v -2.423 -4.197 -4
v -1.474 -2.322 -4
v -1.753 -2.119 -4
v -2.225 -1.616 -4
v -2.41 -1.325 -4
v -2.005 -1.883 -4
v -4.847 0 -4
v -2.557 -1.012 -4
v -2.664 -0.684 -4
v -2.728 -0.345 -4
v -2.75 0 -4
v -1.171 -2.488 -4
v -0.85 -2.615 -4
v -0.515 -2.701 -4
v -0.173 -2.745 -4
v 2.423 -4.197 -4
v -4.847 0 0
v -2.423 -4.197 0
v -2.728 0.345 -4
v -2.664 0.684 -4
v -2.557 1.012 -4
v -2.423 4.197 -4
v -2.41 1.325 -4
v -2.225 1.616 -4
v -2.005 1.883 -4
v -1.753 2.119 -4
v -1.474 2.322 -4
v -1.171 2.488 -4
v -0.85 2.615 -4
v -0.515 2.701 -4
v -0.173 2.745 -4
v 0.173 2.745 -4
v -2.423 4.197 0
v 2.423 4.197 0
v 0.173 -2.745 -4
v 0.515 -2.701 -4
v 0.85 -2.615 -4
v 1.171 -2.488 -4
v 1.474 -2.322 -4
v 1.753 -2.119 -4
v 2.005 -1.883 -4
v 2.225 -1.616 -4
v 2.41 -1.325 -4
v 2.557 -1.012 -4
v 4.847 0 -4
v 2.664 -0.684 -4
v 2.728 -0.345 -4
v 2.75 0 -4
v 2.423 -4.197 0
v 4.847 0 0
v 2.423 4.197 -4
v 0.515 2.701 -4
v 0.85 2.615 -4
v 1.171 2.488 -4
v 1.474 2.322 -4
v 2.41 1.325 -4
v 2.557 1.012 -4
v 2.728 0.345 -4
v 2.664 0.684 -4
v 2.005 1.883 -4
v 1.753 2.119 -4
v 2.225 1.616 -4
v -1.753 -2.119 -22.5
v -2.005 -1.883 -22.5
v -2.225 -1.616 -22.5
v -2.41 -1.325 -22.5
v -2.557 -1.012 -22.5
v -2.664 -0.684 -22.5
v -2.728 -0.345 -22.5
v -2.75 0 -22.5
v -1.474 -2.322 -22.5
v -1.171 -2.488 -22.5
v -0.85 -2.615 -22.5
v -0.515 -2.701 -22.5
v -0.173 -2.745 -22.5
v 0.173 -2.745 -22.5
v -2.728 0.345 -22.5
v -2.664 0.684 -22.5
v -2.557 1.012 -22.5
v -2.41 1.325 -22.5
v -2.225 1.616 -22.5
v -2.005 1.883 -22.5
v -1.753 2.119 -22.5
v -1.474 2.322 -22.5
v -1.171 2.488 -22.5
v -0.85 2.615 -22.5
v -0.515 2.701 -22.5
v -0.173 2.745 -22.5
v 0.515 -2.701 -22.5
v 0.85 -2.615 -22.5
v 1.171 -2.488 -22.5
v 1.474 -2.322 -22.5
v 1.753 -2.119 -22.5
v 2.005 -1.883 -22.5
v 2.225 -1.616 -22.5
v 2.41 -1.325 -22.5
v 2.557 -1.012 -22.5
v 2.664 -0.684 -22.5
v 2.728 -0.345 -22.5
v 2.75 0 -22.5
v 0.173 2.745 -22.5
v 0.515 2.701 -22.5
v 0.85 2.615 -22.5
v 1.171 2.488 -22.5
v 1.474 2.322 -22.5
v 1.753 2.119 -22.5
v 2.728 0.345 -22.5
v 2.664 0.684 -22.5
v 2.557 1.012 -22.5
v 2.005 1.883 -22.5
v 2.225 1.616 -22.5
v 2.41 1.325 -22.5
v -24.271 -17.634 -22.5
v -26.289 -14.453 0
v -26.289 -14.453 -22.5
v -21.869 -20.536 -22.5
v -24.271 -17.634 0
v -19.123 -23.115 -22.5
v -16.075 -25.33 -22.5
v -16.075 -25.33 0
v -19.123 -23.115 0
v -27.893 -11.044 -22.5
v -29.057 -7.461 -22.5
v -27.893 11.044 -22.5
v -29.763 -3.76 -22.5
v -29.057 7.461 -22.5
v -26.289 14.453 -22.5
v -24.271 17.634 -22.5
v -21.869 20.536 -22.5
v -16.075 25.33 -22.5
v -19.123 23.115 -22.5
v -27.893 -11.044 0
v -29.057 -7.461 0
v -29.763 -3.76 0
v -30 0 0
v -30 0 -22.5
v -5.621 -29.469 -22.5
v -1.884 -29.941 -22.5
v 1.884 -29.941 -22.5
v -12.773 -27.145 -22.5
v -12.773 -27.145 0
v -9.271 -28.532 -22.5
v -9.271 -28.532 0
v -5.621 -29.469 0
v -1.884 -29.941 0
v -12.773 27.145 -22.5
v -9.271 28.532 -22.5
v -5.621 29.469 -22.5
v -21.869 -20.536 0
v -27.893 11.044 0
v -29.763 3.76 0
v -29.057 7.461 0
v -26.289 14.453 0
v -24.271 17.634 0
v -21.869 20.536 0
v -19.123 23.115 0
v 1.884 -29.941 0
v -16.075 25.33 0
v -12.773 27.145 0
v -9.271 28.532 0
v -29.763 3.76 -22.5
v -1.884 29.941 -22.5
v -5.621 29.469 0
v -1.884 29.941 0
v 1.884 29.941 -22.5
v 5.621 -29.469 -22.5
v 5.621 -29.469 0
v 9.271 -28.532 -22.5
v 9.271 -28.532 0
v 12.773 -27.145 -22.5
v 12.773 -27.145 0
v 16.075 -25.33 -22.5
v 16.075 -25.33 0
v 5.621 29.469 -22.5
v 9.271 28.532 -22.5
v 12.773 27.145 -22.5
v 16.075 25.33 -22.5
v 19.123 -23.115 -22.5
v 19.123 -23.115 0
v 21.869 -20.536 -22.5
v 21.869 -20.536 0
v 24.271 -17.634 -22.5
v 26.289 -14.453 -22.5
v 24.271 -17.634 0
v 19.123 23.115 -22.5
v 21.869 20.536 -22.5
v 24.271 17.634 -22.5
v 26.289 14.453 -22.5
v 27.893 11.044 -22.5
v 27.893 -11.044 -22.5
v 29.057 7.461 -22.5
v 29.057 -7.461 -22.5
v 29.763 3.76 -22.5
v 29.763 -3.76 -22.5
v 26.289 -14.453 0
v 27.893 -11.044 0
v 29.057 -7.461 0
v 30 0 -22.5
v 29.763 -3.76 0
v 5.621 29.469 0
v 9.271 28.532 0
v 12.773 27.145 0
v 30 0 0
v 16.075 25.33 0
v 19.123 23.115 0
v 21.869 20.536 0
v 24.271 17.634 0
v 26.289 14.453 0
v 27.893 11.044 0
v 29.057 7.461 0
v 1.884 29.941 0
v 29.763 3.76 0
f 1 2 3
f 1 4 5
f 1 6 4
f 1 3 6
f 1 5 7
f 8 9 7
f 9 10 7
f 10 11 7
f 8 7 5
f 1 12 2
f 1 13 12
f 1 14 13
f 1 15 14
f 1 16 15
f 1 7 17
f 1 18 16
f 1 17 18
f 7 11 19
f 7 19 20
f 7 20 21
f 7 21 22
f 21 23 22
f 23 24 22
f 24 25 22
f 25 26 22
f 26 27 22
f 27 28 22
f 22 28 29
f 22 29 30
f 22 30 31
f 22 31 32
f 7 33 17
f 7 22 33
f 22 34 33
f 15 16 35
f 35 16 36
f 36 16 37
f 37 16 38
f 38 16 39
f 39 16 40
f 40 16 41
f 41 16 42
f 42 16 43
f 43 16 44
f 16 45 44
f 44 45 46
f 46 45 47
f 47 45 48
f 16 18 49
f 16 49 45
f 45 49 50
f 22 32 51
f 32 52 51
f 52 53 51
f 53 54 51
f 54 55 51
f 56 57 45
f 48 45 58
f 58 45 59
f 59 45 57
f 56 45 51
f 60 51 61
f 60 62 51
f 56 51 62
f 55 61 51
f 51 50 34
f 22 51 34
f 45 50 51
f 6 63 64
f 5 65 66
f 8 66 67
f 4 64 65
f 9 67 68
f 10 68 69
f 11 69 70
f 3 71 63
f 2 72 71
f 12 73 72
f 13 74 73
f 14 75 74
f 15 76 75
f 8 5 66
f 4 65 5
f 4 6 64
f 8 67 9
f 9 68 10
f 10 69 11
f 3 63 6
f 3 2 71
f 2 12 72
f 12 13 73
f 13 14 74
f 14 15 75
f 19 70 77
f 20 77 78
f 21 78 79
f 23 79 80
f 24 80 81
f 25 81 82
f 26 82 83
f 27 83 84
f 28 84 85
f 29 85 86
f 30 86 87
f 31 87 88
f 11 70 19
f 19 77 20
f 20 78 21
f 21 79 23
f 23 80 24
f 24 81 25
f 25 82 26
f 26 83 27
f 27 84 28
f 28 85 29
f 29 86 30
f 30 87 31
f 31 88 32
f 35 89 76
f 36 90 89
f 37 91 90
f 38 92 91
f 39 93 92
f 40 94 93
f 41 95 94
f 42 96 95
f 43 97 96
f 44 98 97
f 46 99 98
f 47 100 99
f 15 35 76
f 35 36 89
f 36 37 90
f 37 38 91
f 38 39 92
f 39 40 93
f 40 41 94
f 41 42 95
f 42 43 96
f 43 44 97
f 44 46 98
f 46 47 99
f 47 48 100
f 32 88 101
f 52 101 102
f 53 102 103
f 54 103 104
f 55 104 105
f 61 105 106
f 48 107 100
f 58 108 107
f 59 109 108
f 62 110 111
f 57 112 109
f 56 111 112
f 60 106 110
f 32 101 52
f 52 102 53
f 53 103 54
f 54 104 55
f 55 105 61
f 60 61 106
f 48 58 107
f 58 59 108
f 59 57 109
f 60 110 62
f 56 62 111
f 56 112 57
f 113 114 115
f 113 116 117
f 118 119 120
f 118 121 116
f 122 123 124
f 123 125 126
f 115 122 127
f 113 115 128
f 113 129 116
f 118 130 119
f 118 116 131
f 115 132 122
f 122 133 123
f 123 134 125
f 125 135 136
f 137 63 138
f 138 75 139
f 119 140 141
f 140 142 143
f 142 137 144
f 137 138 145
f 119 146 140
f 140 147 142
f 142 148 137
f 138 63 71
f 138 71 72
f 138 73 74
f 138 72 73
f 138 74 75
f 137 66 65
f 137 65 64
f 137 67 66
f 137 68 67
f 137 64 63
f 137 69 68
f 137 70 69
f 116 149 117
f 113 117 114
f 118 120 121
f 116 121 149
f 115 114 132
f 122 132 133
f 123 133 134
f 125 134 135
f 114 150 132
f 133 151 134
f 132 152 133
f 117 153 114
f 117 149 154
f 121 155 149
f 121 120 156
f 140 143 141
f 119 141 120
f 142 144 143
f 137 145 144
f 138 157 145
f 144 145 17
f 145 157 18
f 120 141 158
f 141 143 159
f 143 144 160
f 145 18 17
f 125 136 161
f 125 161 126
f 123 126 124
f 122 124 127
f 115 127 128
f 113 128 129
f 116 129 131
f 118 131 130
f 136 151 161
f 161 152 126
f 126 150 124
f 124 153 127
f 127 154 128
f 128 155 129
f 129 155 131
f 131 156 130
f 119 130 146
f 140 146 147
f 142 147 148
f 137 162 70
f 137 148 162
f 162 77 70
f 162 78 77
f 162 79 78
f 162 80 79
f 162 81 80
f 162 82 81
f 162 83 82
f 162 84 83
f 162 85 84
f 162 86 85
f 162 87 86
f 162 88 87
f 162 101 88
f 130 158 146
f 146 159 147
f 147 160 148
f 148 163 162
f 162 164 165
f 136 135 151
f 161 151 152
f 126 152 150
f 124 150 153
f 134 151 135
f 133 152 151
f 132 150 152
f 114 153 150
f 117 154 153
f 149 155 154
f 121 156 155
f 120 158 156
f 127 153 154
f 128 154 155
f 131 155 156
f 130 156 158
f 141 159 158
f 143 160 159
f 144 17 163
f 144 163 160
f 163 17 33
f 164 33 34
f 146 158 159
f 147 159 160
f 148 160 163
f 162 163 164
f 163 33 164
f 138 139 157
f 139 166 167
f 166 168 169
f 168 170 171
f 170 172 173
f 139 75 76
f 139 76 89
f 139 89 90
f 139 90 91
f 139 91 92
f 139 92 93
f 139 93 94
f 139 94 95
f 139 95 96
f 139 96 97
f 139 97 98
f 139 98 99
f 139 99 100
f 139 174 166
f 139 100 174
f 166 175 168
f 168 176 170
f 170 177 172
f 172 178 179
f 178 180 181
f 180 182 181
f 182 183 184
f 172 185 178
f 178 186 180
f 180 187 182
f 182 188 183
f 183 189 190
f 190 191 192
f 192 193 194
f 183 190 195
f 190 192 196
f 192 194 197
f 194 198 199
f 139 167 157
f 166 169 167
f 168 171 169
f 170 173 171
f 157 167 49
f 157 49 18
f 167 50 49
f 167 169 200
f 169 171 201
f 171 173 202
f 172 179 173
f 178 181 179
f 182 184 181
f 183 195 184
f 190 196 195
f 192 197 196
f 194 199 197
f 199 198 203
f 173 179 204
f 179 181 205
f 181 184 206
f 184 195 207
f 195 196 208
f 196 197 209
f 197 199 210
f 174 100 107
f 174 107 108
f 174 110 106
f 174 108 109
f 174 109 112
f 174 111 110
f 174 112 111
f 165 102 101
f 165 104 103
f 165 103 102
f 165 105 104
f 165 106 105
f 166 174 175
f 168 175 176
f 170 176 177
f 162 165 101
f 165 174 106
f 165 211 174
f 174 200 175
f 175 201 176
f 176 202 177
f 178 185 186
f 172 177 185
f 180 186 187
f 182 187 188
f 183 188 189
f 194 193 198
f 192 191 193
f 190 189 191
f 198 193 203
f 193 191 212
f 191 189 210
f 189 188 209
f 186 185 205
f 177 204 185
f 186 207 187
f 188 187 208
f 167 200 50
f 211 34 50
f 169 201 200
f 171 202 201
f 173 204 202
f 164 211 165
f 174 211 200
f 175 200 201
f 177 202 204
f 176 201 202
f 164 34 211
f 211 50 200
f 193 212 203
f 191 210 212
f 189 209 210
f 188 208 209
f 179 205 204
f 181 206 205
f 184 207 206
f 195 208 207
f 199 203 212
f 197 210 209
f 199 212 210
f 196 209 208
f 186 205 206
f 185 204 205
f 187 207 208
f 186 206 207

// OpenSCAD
$fn = 50;

difference() {
	union() {
		translate(v = [0, 0, -22.5]) {
			cylinder(h = 22.5, r = 30.0);
		}
	}
	union() {
		translate(v = [0, 0, 0]) {
			rotate(a = [0, 0, 0]) {
				difference() {
					union() {
						translate(v = [0, 0, -4]) {
							linear_extrude(height = 4) {
								polygon(points = [[4.8468, 0.0], [2.4234000000000004, 4.197451927062417], [-2.423399999999999, 4.197451927062417], [-4.8468, 5.935618106107392e-16], [-2.423400000000002, -4.197451927062416], [2.423399999999997, -4.197451927062419]]);
							}
						}
					}
					union();
				}
			}
		}
		#translate(v = [0, 0, -100.0]) {
			cylinder(h = 200, r = 2.75);
		}
	}
}
